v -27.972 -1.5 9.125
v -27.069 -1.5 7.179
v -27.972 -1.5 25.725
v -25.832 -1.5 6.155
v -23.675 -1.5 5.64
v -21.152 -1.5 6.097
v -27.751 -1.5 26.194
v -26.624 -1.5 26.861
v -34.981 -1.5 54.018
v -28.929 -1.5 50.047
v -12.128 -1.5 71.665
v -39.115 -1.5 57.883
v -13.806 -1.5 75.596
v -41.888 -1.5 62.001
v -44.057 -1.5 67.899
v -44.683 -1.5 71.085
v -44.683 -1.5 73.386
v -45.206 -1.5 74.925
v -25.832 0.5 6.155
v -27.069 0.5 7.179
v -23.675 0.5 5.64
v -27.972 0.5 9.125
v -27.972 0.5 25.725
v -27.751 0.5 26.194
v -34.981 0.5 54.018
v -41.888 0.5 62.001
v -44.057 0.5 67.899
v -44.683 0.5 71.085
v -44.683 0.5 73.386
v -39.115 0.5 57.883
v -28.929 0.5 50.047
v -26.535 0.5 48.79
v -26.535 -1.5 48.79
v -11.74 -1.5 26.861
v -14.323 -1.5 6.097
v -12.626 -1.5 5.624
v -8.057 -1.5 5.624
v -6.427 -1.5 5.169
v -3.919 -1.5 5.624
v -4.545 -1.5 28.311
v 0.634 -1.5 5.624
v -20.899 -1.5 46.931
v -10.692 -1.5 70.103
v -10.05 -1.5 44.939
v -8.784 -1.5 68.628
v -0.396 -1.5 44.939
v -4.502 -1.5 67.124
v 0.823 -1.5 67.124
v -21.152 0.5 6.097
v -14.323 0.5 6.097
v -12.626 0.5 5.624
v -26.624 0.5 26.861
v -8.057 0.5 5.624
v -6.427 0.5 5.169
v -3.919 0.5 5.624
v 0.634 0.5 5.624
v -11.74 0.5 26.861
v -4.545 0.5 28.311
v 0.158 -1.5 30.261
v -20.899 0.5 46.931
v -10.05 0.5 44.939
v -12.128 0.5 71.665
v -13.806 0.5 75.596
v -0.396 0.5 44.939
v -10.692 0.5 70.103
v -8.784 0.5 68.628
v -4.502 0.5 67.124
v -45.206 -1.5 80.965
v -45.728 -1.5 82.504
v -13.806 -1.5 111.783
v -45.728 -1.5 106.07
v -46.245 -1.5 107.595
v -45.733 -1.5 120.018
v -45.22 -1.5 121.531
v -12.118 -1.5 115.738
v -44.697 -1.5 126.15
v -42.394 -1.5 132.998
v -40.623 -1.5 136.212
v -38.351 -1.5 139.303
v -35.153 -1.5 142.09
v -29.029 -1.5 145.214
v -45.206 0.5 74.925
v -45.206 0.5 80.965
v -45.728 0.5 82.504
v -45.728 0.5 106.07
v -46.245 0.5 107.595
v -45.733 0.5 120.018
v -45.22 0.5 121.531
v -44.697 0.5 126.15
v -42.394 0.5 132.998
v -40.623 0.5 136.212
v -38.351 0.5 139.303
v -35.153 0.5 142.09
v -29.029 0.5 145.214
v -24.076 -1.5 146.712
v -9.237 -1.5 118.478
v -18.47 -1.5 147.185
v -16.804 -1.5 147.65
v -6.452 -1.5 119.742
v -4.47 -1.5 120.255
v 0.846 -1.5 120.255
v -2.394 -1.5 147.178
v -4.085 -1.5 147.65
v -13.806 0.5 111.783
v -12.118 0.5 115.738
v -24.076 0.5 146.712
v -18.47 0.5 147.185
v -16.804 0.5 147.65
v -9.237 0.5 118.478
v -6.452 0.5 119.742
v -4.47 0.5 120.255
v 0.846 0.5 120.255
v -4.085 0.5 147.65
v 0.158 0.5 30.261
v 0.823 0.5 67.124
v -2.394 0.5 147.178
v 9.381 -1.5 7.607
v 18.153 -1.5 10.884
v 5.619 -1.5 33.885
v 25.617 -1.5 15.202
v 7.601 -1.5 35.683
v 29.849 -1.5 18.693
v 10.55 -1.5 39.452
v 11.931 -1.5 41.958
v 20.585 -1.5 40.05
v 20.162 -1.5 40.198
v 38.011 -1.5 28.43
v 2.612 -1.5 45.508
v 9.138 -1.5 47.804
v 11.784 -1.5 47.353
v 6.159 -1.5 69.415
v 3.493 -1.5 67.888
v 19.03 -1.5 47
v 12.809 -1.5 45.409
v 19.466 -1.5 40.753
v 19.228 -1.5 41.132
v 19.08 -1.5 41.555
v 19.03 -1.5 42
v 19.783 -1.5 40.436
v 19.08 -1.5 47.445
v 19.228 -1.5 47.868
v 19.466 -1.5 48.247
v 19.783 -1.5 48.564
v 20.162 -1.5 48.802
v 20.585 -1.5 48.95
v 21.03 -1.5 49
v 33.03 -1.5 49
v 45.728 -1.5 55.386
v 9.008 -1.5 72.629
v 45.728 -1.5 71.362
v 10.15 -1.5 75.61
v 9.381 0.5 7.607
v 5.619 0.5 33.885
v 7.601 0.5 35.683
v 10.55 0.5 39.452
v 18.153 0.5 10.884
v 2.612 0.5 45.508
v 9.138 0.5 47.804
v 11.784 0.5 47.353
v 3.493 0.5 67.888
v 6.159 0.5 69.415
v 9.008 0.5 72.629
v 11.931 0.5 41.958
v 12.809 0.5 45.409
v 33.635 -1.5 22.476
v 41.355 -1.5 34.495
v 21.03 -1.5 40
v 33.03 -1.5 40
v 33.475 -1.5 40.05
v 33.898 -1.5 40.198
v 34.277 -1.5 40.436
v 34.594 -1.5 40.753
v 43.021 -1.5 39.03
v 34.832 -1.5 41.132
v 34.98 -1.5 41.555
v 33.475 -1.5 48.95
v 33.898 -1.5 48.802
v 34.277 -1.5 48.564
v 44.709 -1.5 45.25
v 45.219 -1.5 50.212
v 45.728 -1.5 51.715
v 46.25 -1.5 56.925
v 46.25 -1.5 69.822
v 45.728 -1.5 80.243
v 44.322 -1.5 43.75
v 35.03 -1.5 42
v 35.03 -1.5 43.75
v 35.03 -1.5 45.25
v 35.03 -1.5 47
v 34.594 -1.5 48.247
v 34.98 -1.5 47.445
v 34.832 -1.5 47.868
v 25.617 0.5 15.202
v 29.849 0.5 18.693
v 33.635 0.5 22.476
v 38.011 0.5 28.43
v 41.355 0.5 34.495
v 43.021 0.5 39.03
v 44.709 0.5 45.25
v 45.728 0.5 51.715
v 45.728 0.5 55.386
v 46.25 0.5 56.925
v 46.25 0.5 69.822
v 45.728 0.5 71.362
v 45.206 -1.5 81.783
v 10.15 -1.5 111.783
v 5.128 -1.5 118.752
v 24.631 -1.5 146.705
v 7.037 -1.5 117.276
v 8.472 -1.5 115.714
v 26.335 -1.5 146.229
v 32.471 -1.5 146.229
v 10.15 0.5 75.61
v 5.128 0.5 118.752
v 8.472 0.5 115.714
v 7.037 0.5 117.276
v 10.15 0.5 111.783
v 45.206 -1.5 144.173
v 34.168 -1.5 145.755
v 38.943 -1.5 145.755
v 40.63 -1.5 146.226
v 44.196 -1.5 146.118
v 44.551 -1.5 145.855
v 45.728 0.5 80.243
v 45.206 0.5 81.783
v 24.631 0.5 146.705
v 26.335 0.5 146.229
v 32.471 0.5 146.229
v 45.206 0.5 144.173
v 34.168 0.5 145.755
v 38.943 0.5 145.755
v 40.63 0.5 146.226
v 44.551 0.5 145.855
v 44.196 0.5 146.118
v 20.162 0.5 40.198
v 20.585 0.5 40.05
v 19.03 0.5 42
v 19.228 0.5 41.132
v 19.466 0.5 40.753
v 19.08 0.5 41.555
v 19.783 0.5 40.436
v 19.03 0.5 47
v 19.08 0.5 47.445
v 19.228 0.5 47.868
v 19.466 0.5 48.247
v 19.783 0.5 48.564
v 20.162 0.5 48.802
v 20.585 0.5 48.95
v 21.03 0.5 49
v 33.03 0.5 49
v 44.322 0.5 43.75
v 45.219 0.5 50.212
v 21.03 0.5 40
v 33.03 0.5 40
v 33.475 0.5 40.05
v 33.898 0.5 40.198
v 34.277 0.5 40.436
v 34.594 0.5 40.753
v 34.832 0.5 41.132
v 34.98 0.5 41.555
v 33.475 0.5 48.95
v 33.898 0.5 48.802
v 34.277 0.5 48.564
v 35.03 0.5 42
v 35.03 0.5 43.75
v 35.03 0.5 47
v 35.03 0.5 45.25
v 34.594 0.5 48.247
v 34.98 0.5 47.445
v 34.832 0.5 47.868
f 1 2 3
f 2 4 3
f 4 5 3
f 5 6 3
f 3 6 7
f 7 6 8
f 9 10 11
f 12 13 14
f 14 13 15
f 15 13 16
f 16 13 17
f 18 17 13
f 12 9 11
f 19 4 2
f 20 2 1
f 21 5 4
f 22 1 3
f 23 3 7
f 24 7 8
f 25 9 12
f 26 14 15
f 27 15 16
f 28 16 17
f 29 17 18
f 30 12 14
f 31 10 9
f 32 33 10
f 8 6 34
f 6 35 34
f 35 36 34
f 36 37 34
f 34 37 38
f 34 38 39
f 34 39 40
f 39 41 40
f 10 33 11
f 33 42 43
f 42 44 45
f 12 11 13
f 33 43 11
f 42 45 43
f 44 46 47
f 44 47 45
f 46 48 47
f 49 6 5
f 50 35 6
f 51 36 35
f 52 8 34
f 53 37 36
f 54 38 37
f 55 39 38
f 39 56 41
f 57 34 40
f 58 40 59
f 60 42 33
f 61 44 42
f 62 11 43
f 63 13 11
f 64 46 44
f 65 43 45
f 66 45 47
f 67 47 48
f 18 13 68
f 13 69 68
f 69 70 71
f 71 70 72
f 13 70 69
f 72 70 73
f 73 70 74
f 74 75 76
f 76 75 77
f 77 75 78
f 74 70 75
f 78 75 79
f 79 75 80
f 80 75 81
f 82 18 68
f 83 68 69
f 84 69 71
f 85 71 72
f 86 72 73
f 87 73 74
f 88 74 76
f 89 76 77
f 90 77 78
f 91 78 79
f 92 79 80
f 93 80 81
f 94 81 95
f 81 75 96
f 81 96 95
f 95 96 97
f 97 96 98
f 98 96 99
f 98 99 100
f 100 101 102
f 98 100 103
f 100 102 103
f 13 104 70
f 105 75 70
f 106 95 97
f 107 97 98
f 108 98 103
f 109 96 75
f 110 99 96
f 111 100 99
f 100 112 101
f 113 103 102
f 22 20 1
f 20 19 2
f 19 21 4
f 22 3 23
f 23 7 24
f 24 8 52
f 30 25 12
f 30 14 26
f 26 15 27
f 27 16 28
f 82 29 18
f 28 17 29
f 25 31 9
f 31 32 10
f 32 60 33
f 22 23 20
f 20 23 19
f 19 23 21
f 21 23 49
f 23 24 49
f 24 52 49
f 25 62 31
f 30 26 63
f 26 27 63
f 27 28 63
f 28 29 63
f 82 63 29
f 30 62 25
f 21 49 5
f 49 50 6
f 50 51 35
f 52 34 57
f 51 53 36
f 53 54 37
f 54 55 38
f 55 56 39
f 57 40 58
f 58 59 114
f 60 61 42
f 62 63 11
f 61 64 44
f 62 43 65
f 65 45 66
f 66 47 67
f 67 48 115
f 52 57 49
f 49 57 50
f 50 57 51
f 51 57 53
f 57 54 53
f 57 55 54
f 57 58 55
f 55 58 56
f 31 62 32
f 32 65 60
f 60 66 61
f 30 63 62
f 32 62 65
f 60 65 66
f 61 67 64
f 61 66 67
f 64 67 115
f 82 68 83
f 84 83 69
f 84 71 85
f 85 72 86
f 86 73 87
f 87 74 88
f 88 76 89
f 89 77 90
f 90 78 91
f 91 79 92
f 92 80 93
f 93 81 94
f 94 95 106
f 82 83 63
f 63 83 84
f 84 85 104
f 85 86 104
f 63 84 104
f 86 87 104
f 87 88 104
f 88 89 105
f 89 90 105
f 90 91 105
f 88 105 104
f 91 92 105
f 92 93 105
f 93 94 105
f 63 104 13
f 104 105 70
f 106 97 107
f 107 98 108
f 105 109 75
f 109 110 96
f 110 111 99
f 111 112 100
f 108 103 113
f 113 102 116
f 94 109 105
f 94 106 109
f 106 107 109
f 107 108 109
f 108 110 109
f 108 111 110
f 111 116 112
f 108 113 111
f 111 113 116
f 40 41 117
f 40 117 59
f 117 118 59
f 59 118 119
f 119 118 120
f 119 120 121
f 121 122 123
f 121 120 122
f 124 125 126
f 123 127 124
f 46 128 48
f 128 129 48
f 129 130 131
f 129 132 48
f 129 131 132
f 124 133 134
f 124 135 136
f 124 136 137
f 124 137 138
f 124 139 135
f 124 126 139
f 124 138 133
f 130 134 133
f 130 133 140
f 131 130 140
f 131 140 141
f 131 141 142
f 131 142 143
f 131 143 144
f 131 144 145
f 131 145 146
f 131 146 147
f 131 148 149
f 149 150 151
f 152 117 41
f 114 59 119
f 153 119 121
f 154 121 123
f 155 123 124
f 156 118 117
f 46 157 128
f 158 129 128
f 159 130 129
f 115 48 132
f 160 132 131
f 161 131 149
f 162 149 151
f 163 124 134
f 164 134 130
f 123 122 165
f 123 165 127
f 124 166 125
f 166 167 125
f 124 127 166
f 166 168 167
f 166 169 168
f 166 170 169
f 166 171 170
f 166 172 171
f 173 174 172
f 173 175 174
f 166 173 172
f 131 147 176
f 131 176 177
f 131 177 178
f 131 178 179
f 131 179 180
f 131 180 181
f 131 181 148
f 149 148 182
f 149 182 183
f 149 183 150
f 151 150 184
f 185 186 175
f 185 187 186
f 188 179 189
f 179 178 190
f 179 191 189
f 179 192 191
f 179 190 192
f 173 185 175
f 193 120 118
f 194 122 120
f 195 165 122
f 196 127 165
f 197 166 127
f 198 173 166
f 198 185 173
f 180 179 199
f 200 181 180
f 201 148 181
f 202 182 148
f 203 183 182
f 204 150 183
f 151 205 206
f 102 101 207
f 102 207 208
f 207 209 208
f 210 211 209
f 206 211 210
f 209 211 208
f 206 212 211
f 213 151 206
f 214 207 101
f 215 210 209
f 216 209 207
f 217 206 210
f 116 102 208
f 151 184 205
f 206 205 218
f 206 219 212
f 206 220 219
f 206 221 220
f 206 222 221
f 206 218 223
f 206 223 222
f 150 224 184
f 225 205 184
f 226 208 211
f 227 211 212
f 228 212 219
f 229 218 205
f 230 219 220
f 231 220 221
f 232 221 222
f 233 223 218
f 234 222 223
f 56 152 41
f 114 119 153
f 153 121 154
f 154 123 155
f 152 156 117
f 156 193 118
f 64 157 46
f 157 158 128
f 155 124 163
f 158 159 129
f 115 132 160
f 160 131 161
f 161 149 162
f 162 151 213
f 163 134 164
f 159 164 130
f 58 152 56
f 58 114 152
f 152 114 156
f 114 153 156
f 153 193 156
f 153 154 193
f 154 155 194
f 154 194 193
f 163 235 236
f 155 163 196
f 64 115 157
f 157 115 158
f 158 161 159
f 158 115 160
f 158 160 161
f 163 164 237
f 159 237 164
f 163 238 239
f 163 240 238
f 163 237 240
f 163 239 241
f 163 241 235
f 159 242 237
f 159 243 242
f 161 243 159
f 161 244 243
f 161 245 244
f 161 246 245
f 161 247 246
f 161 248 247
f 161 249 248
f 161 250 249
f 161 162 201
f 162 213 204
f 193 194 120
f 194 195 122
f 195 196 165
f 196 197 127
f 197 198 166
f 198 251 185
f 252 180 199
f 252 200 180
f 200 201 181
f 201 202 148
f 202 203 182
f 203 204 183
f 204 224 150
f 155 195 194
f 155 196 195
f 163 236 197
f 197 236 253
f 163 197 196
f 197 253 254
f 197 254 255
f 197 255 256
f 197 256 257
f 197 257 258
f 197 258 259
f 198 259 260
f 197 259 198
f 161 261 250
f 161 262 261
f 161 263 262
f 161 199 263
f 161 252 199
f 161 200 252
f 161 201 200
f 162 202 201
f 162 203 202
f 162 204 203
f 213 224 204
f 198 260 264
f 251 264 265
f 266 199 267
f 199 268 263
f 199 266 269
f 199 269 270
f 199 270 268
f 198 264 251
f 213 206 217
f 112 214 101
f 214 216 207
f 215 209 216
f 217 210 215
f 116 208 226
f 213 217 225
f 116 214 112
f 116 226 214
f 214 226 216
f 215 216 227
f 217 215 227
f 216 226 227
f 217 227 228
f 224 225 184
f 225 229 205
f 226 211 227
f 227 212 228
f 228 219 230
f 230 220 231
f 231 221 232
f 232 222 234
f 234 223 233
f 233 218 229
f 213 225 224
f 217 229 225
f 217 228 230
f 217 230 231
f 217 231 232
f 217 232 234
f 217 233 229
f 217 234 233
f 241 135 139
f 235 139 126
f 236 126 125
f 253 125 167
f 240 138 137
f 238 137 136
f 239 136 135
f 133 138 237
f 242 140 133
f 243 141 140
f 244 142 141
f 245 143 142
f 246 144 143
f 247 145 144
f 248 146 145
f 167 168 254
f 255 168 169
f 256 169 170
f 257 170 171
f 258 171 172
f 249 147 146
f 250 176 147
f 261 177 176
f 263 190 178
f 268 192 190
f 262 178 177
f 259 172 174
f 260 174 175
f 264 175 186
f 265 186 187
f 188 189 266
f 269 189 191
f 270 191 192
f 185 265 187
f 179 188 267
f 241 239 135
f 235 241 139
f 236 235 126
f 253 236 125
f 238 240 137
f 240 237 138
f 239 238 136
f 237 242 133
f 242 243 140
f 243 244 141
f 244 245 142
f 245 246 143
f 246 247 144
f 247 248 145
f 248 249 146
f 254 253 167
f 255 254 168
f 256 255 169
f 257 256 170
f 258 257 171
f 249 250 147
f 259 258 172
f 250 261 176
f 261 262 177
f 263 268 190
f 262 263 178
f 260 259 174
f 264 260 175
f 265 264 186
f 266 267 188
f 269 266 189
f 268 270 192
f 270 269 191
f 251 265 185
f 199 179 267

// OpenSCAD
// file: shape_pts.scad
// Letter g traced from images/engenesis_g_corrected_spec.png (Housing + Diffuser Front View) via octolamp-lamp-base.
// Housing exterior 100.00 x 150.00 mm (94.00 x 144.00 mm interior + 3.00 mm Octolamp wall). Counter (eye) kept as a hole.

shape_w = 94.00;
shape_h = 144.00;
rec_chip_x = 27.50;
rec_chip_z = 67.00;
rec_cable_x = 27.50;
rec_ziptie_z = 41.5;
rec_keyhole_z = 27.5;
rec_slit_dir = 1;
rec_snap_top_x = 7.61;
rec_snap_bot_x = -8.51;
rec_pillars = [[26.0, 122.0], [-26.0, 122.0], [-30.0, 92.0]];

shape_pts = [[47.000,65.546],[47.000,52.401],[46.478,50.862],[46.478,47.191],[45.956,45.651],[45.433,40.559],[43.736,34.401],[42.039,29.783],[38.644,23.625],[34.206,17.586],[30.354,13.737],[26.046,10.184],[18.474,5.803],[9.596,2.487],[0.718,0.474],[-3.851,0.474],[-6.463,0.000],[-8.160,0.474],[-12.729,0.474],[-14.426,0.947],[-21.085,0.947],[-23.696,0.474],[-26.176,1.066],[-27.678,2.309],[-28.722,4.559],[-28.722,21.493],[-28.331,22.322],[-26.829,23.211],[-11.815,23.211],[-4.765,24.632],[-0.196,26.526],[5.157,30.079],[7.050,31.796],[9.922,35.467],[11.228,37.836],[12.011,40.914],[11.293,42.276],[9.204,42.632],[2.807,40.382],[-0.326,39.789],[-10.118,39.789],[-21.085,41.803],[-26.829,43.697],[-29.310,45.000],[-35.446,49.026],[-39.689,52.993],[-42.561,57.257],[-44.781,63.296],[-45.433,66.612],[-45.433,68.862],[-45.956,70.401],[-45.956,76.441],[-46.478,77.980],[-46.478,101.546],[-47.000,103.086],[-46.478,115.757],[-45.956,117.296],[-45.433,121.914],[-43.083,128.901],[-41.256,132.217],[-38.906,135.414],[-35.576,138.316],[-29.310,141.513],[-24.218,143.053],[-18.604,143.526],[-16.907,144.000],[-3.982,144.000],[-2.285,143.526],[24.740,143.053],[26.438,142.579],[32.574,142.579],[34.271,142.105],[38.840,142.105],[40.538,142.579],[44.454,142.461],[45.172,141.928],[45.956,139.914],[45.956,77.507],[46.478,75.967],[46.478,67.086],[-13.056,71.349],[-11.489,67.678],[-10.183,66.257],[-8.421,64.895],[-4.374,63.474],[0.718,63.474],[3.199,64.184],[5.679,65.605],[8.356,68.625],[9.400,71.349],[9.400,107.230],[7.833,110.901],[6.528,112.322],[4.765,113.684],[0.718,115.105],[-4.374,115.105],[-6.201,114.632],[-8.812,113.447],[-11.489,110.901],[-13.056,107.230]];
shape_paths = [[0, 1, 2, 3, 4, 5, 6, 7, 8, 9, 10, 11, 12, 13, 14, 15, 16, 17, 18, 19, 20, 21, 22, 23, 24, 25, 26, 27, 28, 29, 30, 31, 32, 33, 34, 35, 36, 37, 38, 39, 40, 41, 42, 43, 44, 45, 46, 47, 48, 49, 50, 51, 52, 53, 54, 55, 56, 57, 58, 59, 60, 61, 62, 63, 64, 65, 66, 67, 68, 69, 70, 71, 72, 73, 74, 75, 76, 77, 78, 79], [80, 81, 82, 83, 84, 85, 86, 87, 88, 89, 90, 91, 92, 93, 94, 95, 96, 97, 98, 99]];

diffuser_shape_pts = [[47.000,65.546],[47.000,52.401],[46.478,50.862],[46.478,47.191],[45.956,45.651],[45.433,40.559],[43.736,34.401],[42.039,29.783],[38.644,23.625],[34.206,17.586],[30.354,13.737],[26.046,10.184],[18.474,5.803],[9.596,2.487],[0.718,0.474],[-3.851,0.474],[-6.463,0.000],[-8.160,0.474],[-12.729,0.474],[-14.426,0.947],[-21.085,0.947],[-23.696,0.474],[-26.176,1.066],[-27.678,2.309],[-28.722,4.559],[-28.722,21.493],[-28.331,22.322],[-26.829,23.211],[-11.815,23.211],[-4.765,24.632],[-0.196,26.526],[5.157,30.079],[7.050,31.796],[9.922,35.467],[11.228,37.836],[12.011,40.914],[11.293,42.276],[9.204,42.632],[2.807,40.382],[-0.326,39.789],[-10.118,39.789],[-21.085,41.803],[-26.829,43.697],[-29.310,45.000],[-35.446,49.026],[-39.689,52.993],[-42.561,57.257],[-44.781,63.296],[-45.433,66.612],[-45.433,68.862],[-45.956,70.401],[-45.956,76.441],[-46.478,77.980],[-46.478,101.546],[-47.000,103.086],[-46.478,115.757],[-45.956,117.296],[-45.433,121.914],[-43.083,128.901],[-41.256,132.217],[-38.906,135.414],[-35.576,138.316],[-29.310,141.513],[-24.218,143.053],[-18.604,143.526],[-16.907,144.000],[-3.982,144.000],[-2.285,143.526],[24.740,143.053],[26.438,142.579],[32.574,142.579],[34.271,142.105],[38.840,142.105],[40.538,142.579],[44.454,142.461],[45.172,141.928],[45.956,139.914],[45.956,77.507],[46.478,75.967],[46.478,67.086],[-13.056,71.349],[-11.489,67.678],[-10.183,66.257],[-8.421,64.895],[-4.374,63.474],[0.718,63.474],[3.199,64.184],[5.679,65.605],[8.356,68.625],[9.400,71.349],[9.400,107.230],[7.833,110.901],[6.528,112.322],[4.765,113.684],[0.718,115.105],[-4.374,115.105],[-6.201,114.632],[-8.812,113.447],[-11.489,110.901],[-13.056,107.230]];
diffuser_shape_paths = [[0, 1, 2, 3, 4, 5, 6, 7, 8, 9, 10, 11, 12, 13, 14, 15, 16, 17, 18, 19, 20, 21, 22, 23, 24, 25, 26, 27, 28, 29, 30, 31, 32, 33, 34, 35, 36, 37, 38, 39, 40, 41, 42, 43, 44, 45, 46, 47, 48, 49, 50, 51, 52, 53, 54, 55, 56, 57, 58, 59, 60, 61, 62, 63, 64, 65, 66, 67, 68, 69, 70, 71, 72, 73, 74, 75, 76, 77, 78, 79], [80, 81, 82, 83, 84, 85, 86, 87, 88, 89, 90, 91, 92, 93, 94, 95, 96, 97, 98, 99]];

module shape_2d(pts = shape_pts) {
    polygon(points = pts, paths = shape_paths);
}

module diffuser_shape_2d(pts = diffuser_shape_pts) {
    polygon(points = pts, paths = diffuser_shape_paths);
}
// main file
// Letter "g" internal white reflector plate (2.00 mm thick, 16 x 9 mm cable pocket + 1.50 mm side-entry wire slit).
// Opens and exports standalone in OpenSCAD / OpenSCAD.js.

use <lamp_core.scad>

render_lamp_part("reflector");
